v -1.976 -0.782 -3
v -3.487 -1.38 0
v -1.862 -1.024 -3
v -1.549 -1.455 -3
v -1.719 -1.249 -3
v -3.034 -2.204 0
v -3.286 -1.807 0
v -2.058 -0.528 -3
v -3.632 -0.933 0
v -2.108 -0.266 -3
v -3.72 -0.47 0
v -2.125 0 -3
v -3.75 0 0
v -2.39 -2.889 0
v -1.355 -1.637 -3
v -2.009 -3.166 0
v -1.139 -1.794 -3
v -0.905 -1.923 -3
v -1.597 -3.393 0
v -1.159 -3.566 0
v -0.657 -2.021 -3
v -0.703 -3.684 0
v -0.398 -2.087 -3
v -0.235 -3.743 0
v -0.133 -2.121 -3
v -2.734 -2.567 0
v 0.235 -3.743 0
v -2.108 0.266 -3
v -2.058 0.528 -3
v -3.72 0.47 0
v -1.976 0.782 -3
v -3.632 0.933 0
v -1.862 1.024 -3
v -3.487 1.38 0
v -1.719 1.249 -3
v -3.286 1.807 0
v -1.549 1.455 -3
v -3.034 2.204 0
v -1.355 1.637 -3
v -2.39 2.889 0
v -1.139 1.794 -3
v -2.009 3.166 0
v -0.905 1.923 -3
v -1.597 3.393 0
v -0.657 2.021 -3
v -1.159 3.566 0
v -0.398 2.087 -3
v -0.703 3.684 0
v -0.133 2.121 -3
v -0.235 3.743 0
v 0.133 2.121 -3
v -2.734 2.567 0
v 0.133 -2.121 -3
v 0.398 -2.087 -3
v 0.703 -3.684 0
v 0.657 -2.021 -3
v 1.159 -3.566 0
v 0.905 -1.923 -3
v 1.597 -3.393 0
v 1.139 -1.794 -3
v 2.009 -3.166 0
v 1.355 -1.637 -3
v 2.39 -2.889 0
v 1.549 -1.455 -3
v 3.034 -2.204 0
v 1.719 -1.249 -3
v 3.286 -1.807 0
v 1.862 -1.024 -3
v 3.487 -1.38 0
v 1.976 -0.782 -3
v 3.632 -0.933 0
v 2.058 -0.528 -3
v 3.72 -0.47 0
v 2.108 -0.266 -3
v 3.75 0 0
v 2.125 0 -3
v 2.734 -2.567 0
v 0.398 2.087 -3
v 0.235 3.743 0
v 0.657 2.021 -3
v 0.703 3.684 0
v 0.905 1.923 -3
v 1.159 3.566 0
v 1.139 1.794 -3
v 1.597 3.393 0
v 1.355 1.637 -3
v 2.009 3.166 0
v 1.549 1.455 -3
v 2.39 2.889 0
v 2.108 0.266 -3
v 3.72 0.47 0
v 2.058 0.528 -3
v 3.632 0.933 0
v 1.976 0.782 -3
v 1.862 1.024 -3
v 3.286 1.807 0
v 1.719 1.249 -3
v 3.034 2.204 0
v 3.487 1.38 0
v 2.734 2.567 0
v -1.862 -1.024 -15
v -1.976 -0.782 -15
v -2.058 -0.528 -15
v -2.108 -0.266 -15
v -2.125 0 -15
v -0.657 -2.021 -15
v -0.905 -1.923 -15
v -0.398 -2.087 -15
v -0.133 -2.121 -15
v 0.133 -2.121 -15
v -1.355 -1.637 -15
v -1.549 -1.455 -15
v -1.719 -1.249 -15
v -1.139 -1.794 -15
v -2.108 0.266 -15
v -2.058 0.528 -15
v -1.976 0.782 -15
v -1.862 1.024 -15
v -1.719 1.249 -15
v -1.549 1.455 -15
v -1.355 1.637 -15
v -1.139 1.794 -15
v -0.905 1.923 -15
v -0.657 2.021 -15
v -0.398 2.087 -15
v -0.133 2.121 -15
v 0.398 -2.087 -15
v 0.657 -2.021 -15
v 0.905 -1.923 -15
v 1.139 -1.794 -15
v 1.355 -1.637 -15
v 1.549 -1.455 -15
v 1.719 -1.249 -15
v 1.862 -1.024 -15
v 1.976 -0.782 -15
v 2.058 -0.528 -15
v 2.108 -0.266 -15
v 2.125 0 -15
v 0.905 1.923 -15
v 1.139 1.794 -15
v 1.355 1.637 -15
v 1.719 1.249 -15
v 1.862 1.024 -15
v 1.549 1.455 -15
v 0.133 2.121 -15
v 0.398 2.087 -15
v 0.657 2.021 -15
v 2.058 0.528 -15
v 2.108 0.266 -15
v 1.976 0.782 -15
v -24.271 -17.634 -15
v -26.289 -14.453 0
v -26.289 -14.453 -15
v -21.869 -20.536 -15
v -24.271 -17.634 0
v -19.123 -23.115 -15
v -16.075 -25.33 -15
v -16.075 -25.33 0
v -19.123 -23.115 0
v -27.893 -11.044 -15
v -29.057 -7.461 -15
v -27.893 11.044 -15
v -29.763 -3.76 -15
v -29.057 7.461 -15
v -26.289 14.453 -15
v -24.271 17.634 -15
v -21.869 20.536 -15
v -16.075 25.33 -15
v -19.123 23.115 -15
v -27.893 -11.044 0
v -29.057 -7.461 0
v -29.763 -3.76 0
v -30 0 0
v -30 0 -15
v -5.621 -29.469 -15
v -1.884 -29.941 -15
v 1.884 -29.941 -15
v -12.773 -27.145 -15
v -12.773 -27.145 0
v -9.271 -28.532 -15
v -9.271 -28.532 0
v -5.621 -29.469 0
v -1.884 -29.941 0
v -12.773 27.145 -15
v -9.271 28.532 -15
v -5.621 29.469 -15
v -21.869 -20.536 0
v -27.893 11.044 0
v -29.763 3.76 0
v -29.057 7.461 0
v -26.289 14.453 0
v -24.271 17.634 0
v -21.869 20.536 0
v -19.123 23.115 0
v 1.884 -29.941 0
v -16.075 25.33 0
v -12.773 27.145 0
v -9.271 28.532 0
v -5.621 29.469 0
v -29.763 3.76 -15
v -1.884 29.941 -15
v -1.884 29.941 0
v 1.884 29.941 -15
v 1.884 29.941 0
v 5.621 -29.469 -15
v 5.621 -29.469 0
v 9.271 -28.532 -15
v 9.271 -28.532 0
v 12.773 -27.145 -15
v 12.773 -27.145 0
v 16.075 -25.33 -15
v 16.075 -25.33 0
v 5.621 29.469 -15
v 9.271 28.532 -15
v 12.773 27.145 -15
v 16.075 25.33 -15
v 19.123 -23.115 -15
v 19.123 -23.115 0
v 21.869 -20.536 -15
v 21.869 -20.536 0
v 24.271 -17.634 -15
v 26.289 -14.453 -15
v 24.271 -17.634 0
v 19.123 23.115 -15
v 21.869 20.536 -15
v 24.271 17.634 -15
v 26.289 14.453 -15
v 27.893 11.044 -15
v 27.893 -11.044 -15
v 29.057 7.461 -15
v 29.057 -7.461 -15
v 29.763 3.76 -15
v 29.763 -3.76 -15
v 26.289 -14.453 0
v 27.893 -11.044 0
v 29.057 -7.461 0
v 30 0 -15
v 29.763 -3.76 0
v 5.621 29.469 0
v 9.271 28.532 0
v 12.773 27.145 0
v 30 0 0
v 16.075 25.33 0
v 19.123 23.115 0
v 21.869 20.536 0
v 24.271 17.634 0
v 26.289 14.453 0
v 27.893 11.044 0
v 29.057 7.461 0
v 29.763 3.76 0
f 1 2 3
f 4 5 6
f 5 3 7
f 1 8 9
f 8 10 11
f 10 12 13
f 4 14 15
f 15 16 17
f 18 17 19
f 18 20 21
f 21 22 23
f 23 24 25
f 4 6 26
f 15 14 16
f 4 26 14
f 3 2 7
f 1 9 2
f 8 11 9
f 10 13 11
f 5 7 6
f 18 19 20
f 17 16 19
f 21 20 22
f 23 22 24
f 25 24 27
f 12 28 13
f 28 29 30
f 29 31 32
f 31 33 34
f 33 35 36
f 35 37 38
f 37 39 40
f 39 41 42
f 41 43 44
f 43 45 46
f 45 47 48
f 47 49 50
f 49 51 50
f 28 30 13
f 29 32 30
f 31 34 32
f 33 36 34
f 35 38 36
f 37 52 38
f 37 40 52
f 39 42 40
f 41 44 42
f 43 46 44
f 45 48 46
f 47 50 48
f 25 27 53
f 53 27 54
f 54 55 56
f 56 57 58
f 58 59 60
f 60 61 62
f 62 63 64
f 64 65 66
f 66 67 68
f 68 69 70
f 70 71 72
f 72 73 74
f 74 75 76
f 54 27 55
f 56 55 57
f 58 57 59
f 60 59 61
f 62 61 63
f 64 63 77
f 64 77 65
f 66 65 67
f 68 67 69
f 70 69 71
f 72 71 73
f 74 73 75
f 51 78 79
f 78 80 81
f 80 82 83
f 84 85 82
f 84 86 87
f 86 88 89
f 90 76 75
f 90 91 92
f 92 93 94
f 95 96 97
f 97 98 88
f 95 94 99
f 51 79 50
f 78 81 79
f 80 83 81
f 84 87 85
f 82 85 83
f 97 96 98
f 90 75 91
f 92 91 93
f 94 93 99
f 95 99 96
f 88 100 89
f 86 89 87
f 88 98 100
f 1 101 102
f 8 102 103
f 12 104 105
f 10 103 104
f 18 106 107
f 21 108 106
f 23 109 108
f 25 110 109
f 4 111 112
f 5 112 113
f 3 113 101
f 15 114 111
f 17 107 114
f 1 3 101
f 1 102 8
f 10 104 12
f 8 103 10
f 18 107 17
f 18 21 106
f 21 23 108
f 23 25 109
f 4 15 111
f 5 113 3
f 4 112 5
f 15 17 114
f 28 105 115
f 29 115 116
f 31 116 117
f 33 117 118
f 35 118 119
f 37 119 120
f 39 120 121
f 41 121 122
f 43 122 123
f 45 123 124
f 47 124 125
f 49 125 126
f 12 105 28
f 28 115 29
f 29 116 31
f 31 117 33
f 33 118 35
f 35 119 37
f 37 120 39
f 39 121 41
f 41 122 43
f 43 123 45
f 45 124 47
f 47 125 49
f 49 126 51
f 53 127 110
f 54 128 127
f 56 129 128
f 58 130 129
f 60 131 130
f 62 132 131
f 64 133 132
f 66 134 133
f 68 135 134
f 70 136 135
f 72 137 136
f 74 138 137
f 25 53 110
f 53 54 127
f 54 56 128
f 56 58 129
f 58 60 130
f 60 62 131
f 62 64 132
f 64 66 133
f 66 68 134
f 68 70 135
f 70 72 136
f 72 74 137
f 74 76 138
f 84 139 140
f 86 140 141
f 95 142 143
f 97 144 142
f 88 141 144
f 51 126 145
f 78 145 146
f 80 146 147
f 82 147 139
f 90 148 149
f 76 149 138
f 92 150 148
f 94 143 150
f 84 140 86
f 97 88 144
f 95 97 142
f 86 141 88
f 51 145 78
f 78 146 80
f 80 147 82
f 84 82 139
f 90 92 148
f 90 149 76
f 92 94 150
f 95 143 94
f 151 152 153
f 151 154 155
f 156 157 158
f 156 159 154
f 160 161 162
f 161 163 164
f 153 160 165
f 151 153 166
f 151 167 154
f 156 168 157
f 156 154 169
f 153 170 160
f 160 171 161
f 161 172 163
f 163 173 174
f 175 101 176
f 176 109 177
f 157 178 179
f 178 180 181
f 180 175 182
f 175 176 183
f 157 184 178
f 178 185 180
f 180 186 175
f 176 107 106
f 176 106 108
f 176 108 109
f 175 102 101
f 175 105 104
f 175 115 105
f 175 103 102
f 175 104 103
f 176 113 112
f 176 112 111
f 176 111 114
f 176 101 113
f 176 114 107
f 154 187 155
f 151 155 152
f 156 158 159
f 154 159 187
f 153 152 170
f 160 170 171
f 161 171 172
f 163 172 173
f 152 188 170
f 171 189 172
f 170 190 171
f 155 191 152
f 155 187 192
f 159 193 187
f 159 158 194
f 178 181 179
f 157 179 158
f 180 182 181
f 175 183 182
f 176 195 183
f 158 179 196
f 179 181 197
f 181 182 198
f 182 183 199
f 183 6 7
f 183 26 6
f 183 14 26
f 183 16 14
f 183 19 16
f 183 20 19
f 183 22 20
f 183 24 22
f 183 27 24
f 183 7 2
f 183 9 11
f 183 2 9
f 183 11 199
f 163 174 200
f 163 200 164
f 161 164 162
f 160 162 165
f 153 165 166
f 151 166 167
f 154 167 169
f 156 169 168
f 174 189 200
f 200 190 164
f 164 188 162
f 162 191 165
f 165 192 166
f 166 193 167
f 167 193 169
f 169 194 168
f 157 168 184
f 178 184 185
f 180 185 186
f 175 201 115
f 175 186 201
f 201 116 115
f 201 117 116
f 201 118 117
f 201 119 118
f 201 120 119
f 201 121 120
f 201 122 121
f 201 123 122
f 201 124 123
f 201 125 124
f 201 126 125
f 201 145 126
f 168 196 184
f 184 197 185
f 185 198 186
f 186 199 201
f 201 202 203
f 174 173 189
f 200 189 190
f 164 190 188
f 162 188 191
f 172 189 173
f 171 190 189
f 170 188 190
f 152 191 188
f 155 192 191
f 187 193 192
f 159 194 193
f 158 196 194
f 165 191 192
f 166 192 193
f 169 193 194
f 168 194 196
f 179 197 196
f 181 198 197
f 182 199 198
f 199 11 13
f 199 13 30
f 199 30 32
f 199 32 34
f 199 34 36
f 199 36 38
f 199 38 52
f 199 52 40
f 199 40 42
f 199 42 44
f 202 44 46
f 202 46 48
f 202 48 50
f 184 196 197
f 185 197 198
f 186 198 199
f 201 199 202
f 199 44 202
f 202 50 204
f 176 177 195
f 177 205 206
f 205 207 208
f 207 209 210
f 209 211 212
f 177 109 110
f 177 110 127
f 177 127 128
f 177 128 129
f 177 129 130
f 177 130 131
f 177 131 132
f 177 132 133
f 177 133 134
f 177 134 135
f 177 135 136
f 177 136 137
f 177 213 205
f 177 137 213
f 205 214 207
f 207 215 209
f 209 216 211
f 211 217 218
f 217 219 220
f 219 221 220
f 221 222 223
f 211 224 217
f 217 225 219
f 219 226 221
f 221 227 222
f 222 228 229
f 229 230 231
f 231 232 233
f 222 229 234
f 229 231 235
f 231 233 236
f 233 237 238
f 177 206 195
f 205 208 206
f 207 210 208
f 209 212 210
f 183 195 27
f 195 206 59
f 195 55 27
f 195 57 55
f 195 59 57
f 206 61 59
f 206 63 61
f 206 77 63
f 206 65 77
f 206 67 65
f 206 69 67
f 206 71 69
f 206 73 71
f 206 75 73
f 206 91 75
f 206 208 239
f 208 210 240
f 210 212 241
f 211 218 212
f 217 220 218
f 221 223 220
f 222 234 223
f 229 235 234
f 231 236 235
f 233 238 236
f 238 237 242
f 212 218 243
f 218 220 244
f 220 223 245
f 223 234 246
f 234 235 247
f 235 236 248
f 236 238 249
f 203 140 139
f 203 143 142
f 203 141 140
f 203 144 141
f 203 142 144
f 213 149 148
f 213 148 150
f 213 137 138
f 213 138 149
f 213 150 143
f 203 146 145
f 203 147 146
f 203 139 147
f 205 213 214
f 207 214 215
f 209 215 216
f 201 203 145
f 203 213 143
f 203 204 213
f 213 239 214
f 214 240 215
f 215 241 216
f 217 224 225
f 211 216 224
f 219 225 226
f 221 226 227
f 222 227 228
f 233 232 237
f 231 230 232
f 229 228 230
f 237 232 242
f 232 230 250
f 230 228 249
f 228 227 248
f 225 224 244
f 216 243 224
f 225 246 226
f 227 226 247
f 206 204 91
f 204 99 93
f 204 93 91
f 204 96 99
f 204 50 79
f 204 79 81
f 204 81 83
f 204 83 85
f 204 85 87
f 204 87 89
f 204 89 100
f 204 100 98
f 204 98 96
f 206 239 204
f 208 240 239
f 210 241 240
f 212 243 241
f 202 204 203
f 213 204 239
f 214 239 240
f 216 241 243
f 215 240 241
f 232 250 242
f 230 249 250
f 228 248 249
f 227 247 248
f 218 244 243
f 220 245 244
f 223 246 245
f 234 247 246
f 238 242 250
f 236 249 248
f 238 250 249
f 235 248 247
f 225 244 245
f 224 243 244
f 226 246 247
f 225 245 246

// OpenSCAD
$fn = 50;


difference() {
	union() {
		translate(v = [0, 0, -15.0000000000]) {
			cylinder(h = 15, r = 30.0000000000);
		}
	}
	union() {
		translate(v = [0, 0, 0]) {
			rotate(a = [0, 0, 0]) {
				difference() {
					union() {
						translate(v = [0, 0, -18.0000000000]) {
							cylinder(h = 18, r = 2.0000000000);
						}
						translate(v = [0, 0, -3]) {
							cylinder(h = 3, r1 = 2.1250000000, r2 = 3.7500000000);
						}
						translate(v = [0, 0, -18.0000000000]) {
							cylinder(h = 18, r = 2.1250000000);
						}
						translate(v = [0, 0, -18.0000000000]) {
							cylinder(h = 18, r = 2.0000000000);
						}
					}
					union();
				}
			}
		}
	}
}
